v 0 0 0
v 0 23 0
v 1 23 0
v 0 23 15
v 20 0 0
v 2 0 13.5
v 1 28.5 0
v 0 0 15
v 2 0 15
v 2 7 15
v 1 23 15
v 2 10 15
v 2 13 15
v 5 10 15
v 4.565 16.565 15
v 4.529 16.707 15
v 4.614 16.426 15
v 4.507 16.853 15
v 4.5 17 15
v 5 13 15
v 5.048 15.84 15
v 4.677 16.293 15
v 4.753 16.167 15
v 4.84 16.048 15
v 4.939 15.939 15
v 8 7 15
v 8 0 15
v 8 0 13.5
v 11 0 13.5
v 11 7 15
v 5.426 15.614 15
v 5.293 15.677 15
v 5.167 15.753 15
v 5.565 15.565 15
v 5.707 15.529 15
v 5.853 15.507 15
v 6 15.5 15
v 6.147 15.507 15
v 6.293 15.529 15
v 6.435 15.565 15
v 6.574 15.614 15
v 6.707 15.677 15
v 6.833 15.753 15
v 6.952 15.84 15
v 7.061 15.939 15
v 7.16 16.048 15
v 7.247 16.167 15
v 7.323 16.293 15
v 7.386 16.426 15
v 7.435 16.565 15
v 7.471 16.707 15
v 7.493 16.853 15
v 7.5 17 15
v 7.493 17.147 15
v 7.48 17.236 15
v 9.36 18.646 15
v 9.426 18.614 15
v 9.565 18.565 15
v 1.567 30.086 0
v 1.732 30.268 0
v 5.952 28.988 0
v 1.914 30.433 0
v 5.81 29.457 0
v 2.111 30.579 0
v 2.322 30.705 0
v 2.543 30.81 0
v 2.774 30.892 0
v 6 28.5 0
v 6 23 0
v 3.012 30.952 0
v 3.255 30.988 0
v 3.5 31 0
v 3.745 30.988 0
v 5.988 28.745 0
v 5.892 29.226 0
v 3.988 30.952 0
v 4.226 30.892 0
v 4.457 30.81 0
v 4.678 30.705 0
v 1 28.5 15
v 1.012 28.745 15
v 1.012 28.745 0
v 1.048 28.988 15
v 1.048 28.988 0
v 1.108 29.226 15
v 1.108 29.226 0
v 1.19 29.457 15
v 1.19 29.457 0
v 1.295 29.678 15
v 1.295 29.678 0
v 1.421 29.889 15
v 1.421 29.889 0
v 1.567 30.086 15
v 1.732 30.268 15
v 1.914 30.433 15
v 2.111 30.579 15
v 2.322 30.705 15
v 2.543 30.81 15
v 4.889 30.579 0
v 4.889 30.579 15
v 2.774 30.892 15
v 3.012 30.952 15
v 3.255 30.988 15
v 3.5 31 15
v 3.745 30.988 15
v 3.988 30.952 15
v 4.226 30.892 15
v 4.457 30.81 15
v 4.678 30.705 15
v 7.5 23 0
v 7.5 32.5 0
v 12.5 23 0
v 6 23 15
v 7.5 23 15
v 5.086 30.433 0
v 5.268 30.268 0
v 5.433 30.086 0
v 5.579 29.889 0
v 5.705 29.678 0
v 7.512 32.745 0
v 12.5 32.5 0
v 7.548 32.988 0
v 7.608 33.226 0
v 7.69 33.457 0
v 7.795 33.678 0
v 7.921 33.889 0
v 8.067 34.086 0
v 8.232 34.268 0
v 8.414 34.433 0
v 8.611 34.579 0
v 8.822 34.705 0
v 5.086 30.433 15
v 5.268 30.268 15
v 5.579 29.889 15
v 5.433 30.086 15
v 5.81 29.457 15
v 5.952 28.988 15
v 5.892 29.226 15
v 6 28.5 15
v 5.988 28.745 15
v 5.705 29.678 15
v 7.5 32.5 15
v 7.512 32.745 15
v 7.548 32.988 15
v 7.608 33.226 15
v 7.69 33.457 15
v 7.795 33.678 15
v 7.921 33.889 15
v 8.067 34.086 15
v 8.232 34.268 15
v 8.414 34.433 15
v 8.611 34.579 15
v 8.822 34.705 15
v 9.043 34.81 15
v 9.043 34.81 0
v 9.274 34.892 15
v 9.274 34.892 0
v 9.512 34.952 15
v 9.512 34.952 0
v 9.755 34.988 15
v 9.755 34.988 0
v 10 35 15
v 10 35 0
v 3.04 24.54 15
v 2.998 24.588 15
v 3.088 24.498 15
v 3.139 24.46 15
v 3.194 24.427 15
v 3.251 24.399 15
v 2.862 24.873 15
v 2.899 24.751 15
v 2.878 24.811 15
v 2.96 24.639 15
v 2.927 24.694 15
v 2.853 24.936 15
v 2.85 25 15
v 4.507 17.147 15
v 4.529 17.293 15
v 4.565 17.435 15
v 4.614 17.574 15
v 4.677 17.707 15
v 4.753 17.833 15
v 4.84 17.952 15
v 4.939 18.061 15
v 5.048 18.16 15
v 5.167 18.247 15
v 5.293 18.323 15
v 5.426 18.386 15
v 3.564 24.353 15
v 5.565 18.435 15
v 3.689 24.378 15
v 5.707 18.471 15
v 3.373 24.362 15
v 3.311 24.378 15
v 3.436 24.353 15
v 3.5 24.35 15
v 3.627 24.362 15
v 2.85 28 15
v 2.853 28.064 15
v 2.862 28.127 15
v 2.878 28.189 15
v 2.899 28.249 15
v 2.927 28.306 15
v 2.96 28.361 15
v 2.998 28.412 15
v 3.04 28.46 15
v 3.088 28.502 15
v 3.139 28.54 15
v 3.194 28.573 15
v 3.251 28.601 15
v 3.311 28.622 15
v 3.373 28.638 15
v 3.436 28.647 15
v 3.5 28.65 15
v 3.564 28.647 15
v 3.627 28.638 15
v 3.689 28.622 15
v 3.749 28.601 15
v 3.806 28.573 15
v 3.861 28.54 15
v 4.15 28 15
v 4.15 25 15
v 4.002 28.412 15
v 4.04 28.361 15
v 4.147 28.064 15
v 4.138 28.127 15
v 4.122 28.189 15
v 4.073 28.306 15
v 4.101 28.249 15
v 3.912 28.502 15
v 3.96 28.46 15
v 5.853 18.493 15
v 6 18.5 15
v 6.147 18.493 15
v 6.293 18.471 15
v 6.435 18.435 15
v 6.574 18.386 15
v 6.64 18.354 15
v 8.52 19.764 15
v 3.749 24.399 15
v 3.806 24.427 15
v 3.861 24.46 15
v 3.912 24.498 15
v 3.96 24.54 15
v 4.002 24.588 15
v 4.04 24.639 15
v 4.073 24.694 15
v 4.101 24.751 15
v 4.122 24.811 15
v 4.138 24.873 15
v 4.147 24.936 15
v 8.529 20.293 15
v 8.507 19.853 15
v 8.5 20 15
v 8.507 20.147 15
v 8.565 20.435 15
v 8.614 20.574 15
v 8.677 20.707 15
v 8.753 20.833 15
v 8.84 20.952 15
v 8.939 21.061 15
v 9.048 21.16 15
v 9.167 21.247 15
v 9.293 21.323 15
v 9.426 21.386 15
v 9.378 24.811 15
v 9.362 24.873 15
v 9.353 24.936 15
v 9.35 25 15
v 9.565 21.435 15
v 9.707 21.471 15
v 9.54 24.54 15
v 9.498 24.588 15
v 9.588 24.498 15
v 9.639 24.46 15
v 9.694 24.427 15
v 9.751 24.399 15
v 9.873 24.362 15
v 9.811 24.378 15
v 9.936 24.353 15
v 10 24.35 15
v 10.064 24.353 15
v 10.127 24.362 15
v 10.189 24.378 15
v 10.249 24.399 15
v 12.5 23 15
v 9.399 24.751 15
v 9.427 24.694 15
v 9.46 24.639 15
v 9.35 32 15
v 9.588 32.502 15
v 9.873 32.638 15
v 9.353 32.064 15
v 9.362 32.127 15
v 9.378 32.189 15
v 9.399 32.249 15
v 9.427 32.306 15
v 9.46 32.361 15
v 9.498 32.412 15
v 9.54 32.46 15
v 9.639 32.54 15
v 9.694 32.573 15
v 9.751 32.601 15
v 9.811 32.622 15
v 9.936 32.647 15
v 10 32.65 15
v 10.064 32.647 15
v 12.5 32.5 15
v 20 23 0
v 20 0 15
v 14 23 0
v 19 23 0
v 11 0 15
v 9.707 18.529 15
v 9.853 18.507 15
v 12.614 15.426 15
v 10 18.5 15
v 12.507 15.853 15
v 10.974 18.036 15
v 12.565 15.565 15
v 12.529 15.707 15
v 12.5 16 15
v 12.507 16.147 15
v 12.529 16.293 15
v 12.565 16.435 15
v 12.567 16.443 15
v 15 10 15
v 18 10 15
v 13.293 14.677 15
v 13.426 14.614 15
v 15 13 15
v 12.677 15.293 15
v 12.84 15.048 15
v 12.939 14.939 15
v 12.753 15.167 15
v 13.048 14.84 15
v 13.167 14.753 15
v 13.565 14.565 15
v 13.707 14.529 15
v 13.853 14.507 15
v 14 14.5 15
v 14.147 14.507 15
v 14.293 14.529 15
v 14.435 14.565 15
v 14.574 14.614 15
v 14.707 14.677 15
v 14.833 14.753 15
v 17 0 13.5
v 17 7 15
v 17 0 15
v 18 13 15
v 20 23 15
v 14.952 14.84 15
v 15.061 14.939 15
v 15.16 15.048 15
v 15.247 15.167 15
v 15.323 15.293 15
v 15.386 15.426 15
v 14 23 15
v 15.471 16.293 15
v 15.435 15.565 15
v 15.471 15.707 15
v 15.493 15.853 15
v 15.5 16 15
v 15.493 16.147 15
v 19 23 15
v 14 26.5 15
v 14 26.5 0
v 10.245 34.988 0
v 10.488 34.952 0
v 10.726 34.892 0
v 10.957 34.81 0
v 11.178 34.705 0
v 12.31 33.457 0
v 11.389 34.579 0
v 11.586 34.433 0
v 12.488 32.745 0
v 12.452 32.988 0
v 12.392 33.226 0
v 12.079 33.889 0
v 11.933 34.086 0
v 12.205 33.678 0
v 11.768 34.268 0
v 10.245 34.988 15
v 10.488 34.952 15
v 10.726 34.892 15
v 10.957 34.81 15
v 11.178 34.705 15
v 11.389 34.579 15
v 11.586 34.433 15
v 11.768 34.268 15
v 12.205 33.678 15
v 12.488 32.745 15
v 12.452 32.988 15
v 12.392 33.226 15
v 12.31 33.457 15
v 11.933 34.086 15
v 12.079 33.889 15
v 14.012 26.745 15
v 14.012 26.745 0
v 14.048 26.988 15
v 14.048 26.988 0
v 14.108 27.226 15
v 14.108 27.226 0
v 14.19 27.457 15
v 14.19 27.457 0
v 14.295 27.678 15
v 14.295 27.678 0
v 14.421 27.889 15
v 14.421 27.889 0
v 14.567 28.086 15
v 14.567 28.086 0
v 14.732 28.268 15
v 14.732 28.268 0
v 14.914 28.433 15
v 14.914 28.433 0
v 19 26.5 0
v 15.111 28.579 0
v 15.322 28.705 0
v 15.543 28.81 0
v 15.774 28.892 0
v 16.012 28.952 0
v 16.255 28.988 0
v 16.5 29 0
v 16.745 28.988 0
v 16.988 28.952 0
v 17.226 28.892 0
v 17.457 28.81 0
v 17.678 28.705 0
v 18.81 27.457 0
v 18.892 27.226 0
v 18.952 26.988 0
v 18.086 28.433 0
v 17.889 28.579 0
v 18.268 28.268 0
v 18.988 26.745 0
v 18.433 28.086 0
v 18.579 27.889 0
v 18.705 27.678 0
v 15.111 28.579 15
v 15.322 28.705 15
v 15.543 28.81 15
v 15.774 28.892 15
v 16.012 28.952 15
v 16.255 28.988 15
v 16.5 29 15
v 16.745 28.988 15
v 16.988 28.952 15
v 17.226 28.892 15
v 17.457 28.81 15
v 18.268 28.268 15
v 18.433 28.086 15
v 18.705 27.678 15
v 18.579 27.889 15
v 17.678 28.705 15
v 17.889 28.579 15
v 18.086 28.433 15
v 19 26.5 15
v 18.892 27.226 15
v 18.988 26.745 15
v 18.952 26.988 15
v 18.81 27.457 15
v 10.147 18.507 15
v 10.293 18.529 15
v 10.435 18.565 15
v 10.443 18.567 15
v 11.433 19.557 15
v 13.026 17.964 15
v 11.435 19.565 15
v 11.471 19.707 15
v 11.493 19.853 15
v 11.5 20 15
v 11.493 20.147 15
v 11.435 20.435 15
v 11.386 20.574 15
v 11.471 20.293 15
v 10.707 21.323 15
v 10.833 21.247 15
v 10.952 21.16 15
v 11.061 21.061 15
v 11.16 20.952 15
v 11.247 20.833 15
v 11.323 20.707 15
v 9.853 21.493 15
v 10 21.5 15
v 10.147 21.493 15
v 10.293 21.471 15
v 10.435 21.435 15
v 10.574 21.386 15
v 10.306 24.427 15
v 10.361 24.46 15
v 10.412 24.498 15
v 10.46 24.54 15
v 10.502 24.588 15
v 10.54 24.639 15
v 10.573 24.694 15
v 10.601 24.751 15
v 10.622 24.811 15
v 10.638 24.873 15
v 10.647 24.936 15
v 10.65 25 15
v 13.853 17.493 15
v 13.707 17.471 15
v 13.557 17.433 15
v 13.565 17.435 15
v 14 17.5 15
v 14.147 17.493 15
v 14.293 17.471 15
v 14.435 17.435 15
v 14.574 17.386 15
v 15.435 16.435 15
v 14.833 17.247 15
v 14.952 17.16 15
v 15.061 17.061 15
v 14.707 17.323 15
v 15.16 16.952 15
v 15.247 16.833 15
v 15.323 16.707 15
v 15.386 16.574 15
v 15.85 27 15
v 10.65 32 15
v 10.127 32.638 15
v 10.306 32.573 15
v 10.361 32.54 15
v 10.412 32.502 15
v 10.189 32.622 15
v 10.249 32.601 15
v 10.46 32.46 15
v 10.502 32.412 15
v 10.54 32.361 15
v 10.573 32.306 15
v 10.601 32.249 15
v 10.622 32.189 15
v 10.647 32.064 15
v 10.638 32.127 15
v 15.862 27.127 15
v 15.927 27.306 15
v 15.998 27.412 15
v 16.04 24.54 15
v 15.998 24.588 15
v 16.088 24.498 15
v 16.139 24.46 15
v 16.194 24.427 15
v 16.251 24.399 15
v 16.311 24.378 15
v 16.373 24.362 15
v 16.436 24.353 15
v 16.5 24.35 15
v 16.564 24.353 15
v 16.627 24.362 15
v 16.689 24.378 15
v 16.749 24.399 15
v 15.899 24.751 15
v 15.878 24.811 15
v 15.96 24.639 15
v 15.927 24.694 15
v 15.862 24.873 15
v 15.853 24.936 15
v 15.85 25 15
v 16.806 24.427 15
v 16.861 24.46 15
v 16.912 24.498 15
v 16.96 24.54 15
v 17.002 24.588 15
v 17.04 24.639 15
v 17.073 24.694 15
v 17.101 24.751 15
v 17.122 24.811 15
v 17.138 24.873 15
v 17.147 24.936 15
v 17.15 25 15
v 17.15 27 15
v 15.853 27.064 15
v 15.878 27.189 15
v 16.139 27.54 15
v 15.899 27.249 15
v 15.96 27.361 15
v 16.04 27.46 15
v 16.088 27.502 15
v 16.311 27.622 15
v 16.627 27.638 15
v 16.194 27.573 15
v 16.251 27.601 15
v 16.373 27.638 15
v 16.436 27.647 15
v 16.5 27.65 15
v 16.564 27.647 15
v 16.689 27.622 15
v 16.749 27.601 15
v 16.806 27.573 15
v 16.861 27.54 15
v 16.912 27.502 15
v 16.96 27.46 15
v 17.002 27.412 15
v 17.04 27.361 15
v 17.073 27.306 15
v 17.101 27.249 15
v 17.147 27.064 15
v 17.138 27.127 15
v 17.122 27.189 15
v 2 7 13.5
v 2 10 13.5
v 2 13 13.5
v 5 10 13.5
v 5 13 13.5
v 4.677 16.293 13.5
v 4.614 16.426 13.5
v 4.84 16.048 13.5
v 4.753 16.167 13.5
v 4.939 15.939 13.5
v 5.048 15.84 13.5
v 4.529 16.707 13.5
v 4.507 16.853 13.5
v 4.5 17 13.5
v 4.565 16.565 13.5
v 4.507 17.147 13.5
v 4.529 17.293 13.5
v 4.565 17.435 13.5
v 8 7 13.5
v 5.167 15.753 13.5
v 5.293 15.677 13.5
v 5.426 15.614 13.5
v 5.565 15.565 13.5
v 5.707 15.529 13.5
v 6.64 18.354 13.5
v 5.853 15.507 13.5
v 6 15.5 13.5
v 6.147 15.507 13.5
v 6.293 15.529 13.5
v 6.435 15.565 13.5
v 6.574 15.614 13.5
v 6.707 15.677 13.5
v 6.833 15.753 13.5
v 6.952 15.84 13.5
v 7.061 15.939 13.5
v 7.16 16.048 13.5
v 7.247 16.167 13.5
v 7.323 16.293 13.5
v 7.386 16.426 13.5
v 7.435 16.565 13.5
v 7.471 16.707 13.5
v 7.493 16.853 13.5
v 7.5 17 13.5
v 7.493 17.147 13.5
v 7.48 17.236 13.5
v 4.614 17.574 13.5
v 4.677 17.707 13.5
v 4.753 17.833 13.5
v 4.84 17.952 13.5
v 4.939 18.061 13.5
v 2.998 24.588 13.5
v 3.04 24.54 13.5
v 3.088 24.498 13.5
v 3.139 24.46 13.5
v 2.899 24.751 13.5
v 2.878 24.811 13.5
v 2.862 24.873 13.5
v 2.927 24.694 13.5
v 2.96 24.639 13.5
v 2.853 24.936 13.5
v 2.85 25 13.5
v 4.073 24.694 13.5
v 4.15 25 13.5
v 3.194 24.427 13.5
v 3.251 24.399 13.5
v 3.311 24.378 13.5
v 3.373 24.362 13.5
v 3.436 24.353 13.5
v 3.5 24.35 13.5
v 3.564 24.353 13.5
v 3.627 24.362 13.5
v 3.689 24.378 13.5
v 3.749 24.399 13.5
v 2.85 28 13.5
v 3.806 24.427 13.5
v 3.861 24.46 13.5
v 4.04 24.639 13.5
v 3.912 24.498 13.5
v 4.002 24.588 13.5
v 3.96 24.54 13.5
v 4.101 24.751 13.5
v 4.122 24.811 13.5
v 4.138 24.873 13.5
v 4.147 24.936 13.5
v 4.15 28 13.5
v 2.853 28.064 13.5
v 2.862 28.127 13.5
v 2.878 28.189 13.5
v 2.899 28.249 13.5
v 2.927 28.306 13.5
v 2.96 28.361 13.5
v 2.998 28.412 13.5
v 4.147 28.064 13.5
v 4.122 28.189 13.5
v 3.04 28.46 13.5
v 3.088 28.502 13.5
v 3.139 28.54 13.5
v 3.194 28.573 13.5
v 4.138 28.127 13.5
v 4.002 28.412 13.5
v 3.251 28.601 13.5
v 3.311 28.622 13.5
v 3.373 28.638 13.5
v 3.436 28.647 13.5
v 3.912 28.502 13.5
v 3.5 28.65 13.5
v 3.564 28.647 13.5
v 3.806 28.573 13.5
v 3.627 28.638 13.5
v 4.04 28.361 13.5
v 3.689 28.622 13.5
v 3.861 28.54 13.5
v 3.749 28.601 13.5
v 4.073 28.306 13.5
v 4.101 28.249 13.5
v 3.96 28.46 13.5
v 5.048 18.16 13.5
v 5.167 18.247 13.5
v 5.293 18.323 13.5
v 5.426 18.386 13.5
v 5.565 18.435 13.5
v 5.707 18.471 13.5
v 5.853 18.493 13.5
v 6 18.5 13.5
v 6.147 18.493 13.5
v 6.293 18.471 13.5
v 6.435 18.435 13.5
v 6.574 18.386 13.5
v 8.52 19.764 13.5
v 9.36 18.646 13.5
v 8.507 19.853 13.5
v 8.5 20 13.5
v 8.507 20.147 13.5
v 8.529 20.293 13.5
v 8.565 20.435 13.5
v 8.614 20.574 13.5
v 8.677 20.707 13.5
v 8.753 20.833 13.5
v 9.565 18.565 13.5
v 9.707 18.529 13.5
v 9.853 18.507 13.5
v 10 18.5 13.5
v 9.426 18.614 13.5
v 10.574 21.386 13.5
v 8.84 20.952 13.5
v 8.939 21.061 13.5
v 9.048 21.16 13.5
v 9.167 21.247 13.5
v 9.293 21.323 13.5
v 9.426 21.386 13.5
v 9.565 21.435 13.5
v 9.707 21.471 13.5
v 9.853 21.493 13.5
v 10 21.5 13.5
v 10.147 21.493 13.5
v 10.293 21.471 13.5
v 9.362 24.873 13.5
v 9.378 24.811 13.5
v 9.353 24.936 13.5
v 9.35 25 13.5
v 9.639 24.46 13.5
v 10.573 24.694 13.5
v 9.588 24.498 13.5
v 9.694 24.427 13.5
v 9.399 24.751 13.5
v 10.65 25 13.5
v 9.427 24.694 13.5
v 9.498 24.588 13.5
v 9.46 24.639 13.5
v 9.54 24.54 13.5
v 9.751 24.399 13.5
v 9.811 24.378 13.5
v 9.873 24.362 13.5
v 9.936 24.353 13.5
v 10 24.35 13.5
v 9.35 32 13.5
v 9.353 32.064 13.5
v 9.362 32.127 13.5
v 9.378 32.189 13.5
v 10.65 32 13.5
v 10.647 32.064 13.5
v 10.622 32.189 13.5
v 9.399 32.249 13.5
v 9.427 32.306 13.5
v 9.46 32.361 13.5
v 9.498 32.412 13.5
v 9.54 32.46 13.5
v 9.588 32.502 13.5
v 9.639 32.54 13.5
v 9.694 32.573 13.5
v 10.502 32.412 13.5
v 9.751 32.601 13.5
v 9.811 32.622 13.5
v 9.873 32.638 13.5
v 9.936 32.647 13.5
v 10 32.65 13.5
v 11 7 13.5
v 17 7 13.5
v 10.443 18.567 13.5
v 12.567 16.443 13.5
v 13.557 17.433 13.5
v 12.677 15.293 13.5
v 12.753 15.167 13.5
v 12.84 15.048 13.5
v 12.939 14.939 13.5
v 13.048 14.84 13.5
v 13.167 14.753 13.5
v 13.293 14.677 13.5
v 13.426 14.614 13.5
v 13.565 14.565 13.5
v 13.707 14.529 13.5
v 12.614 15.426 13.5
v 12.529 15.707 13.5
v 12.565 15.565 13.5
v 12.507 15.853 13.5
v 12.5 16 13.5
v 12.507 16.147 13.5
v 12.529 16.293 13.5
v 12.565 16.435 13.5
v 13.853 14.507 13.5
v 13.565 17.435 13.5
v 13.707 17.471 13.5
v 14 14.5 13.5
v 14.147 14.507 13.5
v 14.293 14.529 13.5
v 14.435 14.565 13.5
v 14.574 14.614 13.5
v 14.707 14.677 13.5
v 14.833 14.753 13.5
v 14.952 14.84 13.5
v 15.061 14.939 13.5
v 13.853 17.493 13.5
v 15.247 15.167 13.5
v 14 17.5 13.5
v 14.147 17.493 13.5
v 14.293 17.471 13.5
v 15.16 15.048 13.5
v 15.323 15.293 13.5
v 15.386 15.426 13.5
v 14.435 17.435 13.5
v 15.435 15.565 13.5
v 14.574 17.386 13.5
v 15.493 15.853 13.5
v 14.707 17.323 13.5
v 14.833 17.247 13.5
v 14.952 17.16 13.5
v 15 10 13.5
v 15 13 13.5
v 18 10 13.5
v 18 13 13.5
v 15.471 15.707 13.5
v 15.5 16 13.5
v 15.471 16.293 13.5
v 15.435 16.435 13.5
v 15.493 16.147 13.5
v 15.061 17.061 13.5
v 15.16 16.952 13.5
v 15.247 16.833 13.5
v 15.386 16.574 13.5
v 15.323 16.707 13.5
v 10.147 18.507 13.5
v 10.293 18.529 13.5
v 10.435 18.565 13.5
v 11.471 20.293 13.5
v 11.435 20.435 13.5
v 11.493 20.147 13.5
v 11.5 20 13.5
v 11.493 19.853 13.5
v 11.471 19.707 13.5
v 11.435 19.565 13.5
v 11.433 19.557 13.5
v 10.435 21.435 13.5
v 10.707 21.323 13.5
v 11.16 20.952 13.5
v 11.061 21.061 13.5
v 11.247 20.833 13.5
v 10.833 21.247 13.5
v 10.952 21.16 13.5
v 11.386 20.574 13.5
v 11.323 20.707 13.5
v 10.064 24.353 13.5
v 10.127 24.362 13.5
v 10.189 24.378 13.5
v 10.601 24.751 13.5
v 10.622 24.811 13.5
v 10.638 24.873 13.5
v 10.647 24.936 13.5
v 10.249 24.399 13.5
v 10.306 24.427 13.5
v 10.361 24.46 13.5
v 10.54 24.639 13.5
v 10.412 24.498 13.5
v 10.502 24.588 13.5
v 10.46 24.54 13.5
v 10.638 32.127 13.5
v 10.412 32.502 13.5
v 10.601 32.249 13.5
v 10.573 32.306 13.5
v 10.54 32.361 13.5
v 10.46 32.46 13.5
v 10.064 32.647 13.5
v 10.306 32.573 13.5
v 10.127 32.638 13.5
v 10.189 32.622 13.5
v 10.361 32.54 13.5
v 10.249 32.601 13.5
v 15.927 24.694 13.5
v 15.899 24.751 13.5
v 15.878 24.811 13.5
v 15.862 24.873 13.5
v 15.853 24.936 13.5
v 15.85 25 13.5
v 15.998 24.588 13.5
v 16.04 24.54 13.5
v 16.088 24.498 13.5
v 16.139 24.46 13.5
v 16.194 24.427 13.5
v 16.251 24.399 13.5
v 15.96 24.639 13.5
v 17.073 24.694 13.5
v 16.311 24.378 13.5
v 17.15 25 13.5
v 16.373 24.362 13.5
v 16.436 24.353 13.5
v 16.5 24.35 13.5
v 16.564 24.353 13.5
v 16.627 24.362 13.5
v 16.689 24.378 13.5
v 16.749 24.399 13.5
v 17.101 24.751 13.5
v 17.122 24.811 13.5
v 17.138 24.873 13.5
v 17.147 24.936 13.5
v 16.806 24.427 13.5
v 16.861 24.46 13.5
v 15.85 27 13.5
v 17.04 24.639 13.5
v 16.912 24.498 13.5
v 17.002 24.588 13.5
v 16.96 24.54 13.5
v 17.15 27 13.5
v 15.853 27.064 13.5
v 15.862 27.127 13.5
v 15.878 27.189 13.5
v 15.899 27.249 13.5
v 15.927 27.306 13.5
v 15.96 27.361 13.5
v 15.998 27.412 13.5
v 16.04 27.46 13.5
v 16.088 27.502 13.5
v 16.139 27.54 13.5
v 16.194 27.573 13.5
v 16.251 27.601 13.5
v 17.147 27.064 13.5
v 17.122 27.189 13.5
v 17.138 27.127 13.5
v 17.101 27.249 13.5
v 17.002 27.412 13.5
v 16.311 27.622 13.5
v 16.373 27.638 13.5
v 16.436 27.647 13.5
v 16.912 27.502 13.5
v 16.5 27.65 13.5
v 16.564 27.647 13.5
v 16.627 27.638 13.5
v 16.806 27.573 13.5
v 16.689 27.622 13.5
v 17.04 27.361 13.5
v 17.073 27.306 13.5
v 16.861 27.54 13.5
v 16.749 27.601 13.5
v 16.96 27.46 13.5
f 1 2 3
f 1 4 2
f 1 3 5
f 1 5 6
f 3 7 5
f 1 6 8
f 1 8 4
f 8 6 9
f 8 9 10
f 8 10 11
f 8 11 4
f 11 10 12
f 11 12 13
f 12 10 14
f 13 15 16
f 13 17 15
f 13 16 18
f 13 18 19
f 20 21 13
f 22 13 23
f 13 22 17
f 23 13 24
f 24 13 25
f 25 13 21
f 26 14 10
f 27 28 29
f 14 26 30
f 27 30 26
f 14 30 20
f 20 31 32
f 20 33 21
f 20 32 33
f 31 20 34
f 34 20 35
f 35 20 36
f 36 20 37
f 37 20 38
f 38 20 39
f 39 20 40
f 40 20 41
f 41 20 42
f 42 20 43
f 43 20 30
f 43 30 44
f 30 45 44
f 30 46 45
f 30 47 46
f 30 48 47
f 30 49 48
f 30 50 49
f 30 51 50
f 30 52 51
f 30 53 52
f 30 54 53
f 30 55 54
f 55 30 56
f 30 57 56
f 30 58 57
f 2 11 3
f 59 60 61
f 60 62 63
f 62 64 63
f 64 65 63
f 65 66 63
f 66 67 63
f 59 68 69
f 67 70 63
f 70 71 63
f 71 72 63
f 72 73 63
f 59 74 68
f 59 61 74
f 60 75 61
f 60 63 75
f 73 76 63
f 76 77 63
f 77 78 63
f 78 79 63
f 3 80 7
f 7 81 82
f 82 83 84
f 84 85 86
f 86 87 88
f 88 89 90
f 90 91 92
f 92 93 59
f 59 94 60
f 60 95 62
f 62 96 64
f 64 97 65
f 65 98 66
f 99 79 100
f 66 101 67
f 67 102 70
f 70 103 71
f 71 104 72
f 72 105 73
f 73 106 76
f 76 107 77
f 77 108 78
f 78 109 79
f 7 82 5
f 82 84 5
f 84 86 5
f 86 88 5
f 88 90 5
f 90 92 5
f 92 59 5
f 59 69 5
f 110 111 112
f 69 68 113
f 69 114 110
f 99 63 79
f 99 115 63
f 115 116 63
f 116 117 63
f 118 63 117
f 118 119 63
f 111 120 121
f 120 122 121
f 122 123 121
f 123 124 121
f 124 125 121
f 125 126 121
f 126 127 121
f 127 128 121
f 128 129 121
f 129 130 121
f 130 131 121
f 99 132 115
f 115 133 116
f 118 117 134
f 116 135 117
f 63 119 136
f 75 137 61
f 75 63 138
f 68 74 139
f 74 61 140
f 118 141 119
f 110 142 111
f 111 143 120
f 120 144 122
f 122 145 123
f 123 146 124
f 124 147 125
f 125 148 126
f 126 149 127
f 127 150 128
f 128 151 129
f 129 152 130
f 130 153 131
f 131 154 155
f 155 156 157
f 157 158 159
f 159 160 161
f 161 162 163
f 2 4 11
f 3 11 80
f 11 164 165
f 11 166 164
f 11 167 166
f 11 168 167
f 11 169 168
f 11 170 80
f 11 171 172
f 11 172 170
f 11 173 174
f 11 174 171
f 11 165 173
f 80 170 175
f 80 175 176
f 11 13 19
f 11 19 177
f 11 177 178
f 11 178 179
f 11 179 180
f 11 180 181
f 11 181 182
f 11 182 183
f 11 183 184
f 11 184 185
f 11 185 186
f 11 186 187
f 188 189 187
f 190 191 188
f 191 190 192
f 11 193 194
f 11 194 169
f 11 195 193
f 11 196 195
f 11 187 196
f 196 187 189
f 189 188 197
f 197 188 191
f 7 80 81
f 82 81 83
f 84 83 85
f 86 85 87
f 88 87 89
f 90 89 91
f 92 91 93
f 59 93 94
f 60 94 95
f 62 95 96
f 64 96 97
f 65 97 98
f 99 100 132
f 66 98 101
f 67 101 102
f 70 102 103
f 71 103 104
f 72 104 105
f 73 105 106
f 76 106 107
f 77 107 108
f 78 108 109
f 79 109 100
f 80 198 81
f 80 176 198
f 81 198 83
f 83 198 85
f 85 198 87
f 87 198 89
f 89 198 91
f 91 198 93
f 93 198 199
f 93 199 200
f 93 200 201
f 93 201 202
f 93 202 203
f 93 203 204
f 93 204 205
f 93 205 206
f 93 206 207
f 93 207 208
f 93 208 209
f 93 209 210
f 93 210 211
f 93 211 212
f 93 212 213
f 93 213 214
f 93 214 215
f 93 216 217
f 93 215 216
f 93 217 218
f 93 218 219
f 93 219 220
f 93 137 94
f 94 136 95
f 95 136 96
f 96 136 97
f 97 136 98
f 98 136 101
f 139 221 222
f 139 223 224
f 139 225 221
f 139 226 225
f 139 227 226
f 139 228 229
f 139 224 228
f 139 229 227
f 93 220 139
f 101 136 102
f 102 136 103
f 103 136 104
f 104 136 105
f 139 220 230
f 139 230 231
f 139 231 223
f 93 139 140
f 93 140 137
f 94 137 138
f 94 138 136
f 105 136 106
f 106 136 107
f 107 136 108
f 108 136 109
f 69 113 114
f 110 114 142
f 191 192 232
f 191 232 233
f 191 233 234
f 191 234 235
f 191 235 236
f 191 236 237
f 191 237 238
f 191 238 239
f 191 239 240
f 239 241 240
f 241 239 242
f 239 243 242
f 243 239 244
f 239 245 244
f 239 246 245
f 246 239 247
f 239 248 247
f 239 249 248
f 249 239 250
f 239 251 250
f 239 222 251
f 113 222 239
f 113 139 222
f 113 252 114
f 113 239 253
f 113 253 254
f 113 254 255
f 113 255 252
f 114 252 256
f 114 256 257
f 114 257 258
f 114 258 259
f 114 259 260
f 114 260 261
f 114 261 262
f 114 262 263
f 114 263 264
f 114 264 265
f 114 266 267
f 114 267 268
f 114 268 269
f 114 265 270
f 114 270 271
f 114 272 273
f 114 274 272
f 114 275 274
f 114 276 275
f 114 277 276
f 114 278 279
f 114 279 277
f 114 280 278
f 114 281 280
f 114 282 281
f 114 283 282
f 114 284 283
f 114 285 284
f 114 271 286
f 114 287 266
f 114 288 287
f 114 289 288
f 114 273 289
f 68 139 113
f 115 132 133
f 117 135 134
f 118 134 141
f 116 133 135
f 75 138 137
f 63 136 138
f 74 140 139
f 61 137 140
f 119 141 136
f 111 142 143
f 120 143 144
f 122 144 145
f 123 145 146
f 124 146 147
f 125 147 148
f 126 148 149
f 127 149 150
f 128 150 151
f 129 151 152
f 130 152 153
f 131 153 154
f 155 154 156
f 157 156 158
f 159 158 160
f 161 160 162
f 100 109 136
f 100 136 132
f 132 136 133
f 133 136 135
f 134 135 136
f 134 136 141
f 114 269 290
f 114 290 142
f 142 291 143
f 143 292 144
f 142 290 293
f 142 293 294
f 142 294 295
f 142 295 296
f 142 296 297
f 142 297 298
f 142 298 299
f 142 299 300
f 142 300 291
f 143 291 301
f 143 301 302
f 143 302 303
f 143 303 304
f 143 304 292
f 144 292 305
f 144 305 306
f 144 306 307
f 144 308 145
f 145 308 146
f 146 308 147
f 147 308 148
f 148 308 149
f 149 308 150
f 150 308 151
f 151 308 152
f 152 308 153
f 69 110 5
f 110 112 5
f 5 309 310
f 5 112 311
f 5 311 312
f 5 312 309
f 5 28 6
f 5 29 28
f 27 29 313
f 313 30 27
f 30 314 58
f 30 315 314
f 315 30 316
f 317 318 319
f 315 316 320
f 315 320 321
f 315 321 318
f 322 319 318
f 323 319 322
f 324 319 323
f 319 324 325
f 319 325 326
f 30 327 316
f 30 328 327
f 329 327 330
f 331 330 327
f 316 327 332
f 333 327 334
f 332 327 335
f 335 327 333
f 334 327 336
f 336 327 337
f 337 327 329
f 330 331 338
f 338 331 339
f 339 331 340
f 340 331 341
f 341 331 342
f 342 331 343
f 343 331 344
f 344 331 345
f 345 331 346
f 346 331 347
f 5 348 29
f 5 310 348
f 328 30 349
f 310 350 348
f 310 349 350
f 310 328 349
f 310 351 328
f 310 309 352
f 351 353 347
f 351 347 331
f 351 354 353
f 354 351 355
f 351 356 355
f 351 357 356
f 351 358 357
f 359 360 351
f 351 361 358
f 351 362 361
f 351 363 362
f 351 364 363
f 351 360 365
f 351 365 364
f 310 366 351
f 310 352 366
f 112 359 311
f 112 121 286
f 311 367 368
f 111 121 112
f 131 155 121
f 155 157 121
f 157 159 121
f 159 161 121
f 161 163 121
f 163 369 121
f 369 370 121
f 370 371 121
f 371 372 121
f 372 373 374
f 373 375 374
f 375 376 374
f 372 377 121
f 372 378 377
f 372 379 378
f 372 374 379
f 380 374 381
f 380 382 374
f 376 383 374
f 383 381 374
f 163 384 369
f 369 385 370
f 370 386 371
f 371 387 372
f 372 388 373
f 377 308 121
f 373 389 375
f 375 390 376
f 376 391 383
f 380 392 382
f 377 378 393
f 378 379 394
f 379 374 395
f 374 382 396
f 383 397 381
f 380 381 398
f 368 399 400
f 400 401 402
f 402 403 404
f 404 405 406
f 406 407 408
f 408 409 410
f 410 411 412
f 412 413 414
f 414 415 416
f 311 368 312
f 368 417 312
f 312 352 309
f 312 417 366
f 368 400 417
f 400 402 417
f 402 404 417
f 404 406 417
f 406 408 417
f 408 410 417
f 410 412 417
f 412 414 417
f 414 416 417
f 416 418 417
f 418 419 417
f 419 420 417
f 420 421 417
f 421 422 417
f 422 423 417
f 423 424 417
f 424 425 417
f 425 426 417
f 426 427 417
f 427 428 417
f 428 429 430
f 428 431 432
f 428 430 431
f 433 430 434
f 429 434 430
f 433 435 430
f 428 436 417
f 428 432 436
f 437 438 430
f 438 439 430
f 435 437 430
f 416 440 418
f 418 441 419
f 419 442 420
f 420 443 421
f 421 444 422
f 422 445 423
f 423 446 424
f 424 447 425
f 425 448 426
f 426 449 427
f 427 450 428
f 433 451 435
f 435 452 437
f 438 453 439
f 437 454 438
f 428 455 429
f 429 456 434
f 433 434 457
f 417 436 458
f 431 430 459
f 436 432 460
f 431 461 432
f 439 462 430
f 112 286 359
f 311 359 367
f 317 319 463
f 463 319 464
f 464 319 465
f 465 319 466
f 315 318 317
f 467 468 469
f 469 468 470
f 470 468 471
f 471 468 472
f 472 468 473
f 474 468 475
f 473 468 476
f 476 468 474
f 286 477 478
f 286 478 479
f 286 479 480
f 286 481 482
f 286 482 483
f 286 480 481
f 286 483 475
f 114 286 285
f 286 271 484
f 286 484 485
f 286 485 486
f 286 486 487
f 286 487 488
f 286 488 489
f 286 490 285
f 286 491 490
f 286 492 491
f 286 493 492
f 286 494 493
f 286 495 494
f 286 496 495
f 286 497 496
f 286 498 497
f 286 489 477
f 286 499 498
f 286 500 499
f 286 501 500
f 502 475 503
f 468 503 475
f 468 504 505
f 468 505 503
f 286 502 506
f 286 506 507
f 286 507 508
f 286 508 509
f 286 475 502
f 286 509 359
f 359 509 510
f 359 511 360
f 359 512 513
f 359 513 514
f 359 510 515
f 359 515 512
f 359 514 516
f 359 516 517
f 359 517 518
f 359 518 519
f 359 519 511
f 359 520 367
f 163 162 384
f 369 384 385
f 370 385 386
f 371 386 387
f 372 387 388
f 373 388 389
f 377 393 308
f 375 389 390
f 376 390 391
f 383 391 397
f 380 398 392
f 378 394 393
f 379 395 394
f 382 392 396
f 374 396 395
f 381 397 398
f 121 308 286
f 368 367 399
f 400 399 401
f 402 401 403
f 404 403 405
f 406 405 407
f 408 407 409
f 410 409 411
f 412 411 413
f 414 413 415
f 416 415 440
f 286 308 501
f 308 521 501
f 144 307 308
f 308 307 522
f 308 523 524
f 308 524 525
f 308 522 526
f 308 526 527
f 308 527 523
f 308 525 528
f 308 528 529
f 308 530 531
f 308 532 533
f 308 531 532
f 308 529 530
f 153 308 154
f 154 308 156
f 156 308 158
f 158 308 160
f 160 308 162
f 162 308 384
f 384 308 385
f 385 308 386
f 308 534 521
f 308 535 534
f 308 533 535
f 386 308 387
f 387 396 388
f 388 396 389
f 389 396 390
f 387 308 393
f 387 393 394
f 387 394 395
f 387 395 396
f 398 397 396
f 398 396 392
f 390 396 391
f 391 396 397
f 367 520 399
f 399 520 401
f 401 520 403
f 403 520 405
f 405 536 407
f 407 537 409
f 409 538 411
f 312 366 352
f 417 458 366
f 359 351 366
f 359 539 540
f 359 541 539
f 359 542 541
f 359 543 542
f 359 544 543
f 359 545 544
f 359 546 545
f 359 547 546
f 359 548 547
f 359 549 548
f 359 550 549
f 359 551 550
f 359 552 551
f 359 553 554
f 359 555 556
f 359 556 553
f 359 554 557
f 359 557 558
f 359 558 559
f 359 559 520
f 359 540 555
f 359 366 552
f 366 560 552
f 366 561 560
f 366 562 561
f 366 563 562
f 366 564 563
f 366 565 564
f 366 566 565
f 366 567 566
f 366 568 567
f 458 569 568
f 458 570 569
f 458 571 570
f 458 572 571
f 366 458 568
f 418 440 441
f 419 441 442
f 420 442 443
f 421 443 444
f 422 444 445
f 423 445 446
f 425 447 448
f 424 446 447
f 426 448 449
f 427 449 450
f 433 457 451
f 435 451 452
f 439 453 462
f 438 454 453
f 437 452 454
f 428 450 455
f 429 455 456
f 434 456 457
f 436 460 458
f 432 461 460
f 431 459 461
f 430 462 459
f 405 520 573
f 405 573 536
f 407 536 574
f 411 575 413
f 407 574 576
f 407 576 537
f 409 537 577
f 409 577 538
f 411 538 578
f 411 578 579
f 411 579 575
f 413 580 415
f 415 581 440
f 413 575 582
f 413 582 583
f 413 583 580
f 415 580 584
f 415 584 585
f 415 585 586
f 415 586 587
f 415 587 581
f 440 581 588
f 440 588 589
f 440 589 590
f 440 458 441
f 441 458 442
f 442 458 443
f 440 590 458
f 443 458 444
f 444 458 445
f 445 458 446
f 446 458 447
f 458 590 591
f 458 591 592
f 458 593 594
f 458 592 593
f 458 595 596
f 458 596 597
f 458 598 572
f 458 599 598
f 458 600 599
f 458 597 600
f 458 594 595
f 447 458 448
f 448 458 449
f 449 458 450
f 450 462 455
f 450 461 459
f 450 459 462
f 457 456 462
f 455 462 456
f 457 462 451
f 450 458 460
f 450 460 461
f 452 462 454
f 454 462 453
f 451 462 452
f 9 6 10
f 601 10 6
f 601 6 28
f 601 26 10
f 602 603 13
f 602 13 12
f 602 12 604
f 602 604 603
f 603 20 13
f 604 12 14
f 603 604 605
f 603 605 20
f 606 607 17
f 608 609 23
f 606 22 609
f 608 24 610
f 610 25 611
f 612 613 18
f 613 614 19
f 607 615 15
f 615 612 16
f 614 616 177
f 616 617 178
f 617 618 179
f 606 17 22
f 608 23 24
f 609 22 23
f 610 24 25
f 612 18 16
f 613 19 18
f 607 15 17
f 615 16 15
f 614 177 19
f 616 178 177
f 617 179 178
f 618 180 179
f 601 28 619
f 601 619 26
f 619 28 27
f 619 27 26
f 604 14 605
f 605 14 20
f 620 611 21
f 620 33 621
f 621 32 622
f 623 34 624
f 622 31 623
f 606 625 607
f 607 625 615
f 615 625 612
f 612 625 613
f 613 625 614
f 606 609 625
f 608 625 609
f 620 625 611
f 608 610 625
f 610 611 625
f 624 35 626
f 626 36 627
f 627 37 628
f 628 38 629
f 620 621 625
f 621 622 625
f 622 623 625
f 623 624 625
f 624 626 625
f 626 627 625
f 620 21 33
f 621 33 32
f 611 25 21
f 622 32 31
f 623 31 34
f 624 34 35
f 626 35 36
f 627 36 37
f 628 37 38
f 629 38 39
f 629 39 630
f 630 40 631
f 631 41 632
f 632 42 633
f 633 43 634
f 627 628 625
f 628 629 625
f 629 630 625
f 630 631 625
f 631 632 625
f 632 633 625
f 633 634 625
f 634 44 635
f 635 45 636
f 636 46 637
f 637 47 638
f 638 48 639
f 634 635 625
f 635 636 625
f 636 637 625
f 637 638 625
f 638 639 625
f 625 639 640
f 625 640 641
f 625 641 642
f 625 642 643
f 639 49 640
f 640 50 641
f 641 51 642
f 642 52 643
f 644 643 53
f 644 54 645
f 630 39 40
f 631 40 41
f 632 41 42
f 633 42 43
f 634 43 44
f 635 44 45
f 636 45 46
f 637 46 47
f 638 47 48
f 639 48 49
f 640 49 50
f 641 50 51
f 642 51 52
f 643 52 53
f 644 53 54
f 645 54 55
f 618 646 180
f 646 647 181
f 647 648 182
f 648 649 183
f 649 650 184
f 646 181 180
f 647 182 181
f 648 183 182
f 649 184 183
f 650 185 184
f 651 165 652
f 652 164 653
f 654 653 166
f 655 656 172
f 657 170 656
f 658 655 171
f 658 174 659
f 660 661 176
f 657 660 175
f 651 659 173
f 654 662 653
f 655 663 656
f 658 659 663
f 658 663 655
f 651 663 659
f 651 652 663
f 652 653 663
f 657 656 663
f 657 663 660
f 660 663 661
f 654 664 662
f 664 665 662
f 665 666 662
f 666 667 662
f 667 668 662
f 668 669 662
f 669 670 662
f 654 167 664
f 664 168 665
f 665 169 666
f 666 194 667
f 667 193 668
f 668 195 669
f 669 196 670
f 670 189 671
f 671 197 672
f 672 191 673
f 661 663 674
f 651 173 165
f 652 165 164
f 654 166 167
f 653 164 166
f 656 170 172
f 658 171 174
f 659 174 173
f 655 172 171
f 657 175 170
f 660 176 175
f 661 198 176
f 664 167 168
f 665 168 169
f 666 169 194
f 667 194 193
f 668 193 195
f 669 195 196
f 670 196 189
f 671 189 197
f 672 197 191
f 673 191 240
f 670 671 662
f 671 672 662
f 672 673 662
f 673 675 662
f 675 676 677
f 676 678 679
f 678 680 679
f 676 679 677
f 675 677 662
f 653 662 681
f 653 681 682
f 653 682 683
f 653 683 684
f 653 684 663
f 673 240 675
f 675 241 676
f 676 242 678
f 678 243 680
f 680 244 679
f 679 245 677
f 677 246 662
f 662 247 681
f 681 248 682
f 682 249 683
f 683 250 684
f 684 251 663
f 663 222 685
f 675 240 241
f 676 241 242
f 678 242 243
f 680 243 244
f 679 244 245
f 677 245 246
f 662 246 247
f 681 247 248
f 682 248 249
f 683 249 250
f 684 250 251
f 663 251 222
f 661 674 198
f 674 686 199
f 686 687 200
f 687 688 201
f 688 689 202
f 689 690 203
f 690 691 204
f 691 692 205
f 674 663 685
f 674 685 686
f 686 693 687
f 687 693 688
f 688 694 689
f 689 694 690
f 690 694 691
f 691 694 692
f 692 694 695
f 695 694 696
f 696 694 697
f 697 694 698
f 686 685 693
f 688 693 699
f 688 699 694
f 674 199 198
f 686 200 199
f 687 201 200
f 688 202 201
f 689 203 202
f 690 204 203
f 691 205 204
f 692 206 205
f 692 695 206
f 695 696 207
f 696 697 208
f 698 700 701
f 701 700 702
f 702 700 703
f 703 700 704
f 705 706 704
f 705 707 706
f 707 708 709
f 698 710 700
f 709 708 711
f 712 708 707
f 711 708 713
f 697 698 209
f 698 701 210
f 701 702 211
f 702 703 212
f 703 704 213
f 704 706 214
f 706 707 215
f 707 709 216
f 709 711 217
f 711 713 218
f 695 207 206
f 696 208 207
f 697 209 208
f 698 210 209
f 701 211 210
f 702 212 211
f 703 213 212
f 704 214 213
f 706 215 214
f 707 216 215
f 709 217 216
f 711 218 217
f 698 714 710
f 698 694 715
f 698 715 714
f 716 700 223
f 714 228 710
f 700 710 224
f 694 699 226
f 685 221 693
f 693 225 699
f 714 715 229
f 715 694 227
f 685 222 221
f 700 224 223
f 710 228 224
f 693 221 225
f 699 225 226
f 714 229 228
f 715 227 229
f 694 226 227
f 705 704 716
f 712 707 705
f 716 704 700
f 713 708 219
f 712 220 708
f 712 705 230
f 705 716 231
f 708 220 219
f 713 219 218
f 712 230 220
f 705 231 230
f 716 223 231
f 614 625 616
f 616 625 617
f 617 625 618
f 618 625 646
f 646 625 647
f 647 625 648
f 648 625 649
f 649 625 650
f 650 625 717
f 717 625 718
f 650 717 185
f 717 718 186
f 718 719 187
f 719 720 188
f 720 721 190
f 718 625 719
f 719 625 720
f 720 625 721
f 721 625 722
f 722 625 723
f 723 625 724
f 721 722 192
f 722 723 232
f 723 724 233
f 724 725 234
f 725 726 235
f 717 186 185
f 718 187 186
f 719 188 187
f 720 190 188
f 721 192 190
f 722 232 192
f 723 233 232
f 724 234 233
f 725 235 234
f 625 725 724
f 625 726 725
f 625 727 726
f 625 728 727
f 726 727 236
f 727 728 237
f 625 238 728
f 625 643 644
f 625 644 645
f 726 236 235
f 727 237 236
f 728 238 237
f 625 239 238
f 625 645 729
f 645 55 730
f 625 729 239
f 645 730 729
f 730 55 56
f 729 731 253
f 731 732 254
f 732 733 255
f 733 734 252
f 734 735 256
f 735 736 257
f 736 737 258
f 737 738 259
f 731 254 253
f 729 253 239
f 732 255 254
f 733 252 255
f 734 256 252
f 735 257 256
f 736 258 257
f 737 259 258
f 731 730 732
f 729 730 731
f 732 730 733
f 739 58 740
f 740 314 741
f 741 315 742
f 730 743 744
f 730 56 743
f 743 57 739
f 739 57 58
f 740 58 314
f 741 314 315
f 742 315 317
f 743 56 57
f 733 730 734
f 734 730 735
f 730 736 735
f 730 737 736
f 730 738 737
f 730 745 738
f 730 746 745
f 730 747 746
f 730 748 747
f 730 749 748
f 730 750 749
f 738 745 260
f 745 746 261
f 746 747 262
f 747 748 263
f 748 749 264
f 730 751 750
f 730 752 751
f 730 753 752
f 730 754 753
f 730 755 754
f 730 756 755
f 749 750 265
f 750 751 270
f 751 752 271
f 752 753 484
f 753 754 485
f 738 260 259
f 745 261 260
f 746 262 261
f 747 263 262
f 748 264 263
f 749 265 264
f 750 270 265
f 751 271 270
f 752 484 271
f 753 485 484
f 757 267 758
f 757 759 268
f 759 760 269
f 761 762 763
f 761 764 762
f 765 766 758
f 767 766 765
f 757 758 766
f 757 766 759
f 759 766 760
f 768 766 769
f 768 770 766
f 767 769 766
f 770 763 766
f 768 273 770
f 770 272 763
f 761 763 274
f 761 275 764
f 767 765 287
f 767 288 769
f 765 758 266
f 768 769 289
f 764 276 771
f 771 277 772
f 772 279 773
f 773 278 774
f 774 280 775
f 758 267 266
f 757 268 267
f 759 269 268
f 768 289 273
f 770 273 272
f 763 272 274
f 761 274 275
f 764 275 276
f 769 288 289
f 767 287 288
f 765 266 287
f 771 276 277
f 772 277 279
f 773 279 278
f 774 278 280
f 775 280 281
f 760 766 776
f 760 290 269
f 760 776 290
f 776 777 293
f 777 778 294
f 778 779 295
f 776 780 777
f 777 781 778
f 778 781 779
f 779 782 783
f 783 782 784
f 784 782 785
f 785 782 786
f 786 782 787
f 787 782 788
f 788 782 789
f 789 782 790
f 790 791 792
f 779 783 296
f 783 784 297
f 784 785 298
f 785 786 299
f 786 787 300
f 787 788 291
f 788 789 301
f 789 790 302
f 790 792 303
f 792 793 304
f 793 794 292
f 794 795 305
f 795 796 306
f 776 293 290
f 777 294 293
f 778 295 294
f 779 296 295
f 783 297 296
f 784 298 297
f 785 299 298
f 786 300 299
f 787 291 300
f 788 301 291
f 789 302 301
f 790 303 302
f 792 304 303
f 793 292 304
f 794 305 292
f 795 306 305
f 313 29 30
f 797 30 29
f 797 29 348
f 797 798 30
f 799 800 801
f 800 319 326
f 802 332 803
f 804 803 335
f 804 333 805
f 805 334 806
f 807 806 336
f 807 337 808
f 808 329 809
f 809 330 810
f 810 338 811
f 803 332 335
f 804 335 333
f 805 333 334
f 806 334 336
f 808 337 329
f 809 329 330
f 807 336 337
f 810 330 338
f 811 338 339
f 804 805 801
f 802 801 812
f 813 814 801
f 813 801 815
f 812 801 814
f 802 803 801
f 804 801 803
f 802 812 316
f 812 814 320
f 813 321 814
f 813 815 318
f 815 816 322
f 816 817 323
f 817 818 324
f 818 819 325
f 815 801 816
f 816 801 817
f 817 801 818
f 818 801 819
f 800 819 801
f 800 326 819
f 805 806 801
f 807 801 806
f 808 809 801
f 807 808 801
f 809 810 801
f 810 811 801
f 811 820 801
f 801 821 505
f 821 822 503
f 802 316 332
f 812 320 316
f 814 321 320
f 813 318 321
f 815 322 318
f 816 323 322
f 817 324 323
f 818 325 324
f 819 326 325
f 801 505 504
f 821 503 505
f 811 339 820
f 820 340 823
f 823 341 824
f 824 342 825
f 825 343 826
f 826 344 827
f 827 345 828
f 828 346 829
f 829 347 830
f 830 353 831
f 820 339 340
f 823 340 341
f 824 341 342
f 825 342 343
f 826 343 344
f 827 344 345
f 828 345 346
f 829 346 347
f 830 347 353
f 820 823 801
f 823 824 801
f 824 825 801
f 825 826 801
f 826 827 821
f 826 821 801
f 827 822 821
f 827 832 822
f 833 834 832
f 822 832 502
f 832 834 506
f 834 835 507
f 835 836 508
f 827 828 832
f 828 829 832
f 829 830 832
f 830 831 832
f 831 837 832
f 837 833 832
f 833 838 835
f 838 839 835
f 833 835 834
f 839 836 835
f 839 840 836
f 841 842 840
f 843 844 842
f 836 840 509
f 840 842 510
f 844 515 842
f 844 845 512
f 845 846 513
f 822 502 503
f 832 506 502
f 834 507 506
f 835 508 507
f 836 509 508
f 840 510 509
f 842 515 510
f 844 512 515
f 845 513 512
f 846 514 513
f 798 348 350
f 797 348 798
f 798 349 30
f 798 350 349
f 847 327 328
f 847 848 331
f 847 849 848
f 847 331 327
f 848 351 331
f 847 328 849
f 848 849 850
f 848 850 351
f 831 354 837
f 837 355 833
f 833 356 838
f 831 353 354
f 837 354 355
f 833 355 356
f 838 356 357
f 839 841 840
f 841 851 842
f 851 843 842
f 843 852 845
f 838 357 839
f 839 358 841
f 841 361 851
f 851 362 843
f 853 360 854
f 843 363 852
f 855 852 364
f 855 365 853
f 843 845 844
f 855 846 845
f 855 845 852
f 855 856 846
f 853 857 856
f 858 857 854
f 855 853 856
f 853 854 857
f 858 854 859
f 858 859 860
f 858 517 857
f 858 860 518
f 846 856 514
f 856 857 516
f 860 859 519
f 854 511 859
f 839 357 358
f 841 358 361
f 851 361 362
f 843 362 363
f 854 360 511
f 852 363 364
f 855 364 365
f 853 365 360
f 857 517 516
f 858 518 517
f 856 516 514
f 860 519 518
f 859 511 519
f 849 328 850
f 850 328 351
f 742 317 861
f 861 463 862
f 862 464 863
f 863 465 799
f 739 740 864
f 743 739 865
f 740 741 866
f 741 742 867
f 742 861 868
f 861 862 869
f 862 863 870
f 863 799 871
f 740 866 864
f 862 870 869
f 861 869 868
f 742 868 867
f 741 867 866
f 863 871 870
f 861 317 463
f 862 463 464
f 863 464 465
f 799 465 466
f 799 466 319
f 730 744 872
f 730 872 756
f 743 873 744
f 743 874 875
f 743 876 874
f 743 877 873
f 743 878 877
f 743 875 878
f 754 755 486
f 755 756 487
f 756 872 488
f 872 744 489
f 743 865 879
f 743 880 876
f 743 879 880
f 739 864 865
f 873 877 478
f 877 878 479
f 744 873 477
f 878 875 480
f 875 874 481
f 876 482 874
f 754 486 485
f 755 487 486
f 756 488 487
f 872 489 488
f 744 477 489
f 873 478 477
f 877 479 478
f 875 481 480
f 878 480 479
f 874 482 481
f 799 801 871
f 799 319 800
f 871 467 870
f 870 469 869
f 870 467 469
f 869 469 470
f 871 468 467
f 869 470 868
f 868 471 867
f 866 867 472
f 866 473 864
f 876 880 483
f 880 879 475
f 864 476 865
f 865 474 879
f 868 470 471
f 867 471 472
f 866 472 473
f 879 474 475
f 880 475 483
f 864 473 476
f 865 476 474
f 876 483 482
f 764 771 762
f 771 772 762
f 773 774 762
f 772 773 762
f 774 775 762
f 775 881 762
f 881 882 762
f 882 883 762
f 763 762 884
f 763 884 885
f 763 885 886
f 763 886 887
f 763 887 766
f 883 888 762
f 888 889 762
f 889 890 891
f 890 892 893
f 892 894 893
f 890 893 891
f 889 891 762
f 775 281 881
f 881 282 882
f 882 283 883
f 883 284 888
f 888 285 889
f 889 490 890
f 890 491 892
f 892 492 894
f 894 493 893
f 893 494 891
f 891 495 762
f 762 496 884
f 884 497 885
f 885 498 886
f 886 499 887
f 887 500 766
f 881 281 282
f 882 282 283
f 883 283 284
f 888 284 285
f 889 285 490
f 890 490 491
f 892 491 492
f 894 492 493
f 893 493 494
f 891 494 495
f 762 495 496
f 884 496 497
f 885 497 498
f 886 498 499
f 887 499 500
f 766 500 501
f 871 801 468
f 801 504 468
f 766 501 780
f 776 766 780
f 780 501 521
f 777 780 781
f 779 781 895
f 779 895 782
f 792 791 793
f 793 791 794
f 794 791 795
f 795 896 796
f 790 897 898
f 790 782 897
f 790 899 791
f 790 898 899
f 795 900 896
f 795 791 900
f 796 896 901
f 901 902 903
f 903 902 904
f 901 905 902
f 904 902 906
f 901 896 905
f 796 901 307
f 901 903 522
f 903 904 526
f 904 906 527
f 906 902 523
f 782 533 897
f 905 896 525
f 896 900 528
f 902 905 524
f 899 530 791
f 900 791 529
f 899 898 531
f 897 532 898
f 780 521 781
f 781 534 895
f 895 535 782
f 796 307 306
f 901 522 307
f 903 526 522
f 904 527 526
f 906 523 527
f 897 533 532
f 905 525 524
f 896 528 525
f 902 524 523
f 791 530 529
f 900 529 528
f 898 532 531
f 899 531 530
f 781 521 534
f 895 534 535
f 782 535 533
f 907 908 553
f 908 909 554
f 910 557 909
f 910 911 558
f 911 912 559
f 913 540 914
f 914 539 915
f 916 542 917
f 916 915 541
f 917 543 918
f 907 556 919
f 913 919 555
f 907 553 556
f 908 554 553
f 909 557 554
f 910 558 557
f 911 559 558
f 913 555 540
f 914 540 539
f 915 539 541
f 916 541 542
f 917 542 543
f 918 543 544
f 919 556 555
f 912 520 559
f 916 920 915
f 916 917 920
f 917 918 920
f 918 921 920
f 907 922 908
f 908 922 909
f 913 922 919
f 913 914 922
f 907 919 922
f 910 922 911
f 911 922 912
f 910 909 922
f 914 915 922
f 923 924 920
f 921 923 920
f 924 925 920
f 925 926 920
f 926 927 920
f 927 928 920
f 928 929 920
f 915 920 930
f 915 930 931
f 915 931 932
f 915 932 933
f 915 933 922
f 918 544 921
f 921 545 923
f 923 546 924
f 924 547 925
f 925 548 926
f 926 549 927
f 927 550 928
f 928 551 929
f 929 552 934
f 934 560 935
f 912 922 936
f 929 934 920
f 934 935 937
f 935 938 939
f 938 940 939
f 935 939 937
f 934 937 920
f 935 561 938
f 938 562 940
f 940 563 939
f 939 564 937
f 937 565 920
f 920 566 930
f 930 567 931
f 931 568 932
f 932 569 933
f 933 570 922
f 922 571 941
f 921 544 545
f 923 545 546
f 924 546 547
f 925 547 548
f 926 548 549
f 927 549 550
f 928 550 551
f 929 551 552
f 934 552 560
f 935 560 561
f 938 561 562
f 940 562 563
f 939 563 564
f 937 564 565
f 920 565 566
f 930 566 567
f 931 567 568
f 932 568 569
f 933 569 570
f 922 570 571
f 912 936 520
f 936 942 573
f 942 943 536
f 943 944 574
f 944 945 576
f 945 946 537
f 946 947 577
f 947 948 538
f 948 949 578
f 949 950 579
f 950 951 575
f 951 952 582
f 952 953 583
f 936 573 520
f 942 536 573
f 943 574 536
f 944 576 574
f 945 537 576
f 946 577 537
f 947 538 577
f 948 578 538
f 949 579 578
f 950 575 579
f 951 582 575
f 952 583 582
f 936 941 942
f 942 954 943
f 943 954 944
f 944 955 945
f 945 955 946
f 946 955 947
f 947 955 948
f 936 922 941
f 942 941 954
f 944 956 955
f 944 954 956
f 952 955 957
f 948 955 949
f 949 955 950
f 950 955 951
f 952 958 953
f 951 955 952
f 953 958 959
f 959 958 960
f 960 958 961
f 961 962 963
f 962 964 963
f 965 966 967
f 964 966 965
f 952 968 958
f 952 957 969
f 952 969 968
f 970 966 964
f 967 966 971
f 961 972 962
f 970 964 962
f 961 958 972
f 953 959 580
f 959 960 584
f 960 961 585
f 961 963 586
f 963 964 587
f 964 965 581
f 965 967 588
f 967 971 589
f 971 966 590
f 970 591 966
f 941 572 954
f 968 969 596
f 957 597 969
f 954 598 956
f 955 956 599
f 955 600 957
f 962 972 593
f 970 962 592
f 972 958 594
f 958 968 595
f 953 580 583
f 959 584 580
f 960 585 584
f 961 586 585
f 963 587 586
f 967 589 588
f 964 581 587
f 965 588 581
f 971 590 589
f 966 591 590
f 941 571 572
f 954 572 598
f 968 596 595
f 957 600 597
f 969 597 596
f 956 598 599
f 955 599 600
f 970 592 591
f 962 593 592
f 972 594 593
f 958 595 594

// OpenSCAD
// Facade game piece in mm: X width, Y height, Z depth.
// Place Z=0 flat on the build plate; all recessed details are 1.5 mm deep.
$fn=64;
module rect(x,y,w,h){translate([x,y]) square([w,h]);}
module disk(x,y,r){translate([x,y]) circle(r=r);}
module line(a,b,w=1.5){hull(){translate(a) circle(d=w);translate(b) circle(d=w);}}
module path(points,w=1.5){for(i=[0:len(points)-2]) line(points[i],points[i+1],w);}
module cross_icon(x,y,size=6,bar=1.8){union(){rect(x-size/2,y-bar/2,size,bar);rect(x-bar/2,y-size/2,bar,size);}}
module tank(x,y,w,h){union(){rect(x,y,w,h-w/2);disk(x+w/2,y+h-w/2,w/2);}}
module ring(x,y,r,w=1.3){difference(){disk(x,y,r);disk(x,y,r-w);}}

module silhouette(){
union(){rect(0,0,20,23);tank(1,23,5,8);tank(7.5,23,5,12);tank(14,23,5,6);}
}
module facade_recesses(){union(){
disk(6,17,1.5);disk(10,20,1.5);disk(14,16,1.5);
line([6,17],[10,20],1.4);line([10,20],[14,16],1.4);
rect(2,0,6,7);rect(11,0,6,7);
for(x=[2,15]) rect(x,10,3,3);
line([3.5,25],[3.5,28],1.3);line([10,25],[10,32],1.3);line([16.5,25],[16.5,27],1.3);
}}
difference(){
 linear_extrude(height=15) silhouette();
 translate([0,0,13.5]) linear_extrude(height=2) facade_recesses();
}
